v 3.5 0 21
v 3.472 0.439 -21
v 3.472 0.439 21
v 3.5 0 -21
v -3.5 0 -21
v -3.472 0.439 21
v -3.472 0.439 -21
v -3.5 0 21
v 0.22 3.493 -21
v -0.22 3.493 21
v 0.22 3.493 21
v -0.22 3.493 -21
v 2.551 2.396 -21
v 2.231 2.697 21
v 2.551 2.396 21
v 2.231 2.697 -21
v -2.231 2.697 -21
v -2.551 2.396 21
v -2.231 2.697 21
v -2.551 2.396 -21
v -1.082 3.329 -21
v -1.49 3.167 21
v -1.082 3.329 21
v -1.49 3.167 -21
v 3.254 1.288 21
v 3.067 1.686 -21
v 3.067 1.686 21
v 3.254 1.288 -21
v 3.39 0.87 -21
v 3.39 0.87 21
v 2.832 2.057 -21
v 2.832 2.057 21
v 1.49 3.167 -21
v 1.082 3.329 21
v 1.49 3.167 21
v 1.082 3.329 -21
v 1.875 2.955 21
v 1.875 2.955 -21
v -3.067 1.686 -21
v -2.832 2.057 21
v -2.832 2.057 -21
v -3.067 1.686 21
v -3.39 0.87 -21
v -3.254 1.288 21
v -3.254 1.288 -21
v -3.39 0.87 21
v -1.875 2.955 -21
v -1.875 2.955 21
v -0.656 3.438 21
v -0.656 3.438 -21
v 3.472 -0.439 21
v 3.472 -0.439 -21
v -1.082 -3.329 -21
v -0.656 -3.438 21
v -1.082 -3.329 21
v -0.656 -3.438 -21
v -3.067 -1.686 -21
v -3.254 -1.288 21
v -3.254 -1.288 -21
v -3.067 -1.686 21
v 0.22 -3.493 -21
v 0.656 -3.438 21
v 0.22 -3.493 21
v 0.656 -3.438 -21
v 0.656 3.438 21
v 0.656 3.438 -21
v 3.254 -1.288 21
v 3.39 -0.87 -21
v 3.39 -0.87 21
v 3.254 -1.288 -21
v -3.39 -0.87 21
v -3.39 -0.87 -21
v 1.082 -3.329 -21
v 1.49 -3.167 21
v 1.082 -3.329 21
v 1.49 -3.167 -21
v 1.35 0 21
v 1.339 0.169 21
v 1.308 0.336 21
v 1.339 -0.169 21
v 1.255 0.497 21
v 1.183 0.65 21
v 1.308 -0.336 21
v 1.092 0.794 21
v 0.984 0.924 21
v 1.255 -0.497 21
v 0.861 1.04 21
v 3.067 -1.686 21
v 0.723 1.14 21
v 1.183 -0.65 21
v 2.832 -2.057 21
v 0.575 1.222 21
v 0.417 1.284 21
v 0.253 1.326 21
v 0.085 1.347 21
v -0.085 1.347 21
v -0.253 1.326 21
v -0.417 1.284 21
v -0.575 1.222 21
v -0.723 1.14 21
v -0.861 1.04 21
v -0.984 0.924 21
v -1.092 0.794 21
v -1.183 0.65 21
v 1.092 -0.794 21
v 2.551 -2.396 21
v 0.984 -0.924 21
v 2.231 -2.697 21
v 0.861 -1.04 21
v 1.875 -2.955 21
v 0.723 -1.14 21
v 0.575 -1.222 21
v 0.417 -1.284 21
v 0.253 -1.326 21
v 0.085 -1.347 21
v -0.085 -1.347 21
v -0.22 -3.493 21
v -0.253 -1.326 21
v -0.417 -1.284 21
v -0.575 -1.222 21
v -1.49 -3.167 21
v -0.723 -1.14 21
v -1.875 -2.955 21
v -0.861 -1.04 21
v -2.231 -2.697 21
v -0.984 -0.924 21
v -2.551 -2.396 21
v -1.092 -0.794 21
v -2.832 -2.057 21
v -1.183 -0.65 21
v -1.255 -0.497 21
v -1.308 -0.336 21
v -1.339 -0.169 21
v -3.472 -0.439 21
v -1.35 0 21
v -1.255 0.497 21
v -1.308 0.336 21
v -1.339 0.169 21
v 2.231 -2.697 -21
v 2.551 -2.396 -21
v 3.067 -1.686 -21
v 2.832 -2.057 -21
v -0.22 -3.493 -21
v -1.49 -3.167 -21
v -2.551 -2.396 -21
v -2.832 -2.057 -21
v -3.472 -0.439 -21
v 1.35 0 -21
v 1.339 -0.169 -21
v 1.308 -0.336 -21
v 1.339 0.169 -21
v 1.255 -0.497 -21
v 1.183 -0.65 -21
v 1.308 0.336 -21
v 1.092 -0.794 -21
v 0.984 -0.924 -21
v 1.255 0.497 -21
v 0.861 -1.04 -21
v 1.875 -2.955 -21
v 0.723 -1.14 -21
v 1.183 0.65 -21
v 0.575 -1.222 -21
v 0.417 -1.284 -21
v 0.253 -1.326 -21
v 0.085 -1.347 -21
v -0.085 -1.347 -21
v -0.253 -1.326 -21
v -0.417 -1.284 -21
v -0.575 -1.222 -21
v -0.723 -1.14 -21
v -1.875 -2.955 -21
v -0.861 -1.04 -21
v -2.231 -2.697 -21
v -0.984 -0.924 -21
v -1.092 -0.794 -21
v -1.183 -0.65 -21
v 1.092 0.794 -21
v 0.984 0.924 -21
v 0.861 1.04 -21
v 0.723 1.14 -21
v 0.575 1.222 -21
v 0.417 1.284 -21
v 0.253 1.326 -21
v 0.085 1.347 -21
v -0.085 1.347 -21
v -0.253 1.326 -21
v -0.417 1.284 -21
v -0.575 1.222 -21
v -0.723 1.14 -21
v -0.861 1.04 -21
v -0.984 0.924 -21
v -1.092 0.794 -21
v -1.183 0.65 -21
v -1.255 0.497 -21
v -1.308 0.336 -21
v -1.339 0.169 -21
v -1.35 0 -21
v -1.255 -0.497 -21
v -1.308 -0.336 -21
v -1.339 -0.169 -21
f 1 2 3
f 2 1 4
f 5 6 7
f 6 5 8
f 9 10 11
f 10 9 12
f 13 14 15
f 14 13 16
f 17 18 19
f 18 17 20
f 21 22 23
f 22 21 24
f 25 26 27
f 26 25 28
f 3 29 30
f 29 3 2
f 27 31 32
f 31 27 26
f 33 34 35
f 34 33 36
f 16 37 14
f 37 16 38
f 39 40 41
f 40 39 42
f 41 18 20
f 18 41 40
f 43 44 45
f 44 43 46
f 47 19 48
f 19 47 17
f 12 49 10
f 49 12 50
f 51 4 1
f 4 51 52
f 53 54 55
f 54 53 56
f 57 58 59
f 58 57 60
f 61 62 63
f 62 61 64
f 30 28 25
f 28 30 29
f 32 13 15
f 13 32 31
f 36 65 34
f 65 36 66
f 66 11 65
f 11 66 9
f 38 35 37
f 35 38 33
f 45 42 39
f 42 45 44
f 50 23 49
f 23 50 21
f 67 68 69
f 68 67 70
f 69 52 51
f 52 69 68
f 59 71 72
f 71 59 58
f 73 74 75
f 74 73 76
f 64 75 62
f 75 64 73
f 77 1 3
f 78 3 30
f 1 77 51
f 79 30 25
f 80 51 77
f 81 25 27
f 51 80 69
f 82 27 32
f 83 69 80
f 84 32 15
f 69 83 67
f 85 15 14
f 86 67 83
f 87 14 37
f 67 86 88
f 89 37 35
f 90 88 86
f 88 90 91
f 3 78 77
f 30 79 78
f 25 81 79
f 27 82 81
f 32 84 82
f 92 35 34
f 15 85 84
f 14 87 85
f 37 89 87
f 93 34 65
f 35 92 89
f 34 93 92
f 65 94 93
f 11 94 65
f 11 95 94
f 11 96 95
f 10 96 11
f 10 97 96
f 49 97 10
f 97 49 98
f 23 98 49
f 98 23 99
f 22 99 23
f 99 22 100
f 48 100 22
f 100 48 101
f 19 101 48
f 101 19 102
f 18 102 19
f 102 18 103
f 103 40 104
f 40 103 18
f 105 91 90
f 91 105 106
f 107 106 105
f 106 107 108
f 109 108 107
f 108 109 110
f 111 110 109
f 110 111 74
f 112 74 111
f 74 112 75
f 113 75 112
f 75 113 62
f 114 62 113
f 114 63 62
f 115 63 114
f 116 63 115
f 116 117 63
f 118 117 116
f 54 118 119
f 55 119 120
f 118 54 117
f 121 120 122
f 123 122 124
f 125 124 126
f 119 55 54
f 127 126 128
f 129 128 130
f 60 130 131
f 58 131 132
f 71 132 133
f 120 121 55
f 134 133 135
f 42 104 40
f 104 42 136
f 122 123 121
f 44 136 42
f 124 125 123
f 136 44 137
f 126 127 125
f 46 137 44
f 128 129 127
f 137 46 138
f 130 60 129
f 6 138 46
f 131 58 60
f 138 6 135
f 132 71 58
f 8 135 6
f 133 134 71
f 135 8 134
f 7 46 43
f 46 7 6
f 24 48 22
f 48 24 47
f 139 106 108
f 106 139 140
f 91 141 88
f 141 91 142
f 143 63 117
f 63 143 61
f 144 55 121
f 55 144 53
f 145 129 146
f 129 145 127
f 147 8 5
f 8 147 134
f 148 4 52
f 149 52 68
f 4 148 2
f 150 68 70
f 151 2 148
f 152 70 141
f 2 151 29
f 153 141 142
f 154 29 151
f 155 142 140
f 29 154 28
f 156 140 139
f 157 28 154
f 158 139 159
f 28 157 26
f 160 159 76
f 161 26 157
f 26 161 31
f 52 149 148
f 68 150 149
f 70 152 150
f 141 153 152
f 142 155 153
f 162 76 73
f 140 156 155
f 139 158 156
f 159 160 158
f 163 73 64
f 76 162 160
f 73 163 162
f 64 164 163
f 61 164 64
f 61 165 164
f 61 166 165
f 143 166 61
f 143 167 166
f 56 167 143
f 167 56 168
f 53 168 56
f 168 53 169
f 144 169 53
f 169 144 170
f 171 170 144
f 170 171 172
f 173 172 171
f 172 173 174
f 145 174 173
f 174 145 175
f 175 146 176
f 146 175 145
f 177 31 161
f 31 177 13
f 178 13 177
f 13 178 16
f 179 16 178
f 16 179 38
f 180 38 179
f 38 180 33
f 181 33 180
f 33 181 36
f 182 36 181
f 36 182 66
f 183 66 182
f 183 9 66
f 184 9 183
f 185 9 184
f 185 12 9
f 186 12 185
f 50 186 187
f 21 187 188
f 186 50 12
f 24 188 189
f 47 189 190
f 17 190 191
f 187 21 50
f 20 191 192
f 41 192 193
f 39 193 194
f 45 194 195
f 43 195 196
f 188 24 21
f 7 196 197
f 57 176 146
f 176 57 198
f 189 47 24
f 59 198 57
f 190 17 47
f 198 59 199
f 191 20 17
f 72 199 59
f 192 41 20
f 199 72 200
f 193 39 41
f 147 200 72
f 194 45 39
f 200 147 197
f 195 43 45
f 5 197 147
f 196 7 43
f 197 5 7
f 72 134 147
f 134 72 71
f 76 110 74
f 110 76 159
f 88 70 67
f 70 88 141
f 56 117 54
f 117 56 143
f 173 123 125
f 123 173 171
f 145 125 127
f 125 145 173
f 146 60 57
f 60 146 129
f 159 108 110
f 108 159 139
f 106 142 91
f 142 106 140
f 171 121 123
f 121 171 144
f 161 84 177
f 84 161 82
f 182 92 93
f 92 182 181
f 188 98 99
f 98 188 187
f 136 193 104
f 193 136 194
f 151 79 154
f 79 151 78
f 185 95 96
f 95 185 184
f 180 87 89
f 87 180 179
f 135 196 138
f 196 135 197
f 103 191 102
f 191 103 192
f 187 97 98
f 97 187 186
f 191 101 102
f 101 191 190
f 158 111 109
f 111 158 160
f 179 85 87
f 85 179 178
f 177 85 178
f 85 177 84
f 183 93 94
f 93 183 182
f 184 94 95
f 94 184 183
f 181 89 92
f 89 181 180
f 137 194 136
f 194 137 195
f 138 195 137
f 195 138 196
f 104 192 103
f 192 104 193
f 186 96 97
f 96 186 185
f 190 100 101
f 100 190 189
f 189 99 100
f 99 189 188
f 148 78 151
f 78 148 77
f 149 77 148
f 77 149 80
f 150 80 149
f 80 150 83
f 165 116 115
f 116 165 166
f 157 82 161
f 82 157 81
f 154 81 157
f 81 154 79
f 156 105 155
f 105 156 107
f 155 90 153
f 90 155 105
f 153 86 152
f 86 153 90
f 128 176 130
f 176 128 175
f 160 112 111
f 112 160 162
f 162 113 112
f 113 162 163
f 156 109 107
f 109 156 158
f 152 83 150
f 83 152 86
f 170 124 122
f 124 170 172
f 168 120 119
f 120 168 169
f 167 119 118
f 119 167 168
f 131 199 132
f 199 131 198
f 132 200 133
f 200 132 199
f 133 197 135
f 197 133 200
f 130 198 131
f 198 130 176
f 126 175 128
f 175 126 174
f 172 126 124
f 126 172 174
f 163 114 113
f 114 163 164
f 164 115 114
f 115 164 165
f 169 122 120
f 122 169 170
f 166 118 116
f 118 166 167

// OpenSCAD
$fn = 50;


difference() {
	union() {
		translate(v = [0, 0, -21.0000000000]) {
			cylinder(h = 42, r = 3.5000000000);
		}
	}
	union() {
		translate(v = [0, 0, -100.0000000000]) {
			cylinder(h = 200, r = 1.3500000000);
		}
	}
}
